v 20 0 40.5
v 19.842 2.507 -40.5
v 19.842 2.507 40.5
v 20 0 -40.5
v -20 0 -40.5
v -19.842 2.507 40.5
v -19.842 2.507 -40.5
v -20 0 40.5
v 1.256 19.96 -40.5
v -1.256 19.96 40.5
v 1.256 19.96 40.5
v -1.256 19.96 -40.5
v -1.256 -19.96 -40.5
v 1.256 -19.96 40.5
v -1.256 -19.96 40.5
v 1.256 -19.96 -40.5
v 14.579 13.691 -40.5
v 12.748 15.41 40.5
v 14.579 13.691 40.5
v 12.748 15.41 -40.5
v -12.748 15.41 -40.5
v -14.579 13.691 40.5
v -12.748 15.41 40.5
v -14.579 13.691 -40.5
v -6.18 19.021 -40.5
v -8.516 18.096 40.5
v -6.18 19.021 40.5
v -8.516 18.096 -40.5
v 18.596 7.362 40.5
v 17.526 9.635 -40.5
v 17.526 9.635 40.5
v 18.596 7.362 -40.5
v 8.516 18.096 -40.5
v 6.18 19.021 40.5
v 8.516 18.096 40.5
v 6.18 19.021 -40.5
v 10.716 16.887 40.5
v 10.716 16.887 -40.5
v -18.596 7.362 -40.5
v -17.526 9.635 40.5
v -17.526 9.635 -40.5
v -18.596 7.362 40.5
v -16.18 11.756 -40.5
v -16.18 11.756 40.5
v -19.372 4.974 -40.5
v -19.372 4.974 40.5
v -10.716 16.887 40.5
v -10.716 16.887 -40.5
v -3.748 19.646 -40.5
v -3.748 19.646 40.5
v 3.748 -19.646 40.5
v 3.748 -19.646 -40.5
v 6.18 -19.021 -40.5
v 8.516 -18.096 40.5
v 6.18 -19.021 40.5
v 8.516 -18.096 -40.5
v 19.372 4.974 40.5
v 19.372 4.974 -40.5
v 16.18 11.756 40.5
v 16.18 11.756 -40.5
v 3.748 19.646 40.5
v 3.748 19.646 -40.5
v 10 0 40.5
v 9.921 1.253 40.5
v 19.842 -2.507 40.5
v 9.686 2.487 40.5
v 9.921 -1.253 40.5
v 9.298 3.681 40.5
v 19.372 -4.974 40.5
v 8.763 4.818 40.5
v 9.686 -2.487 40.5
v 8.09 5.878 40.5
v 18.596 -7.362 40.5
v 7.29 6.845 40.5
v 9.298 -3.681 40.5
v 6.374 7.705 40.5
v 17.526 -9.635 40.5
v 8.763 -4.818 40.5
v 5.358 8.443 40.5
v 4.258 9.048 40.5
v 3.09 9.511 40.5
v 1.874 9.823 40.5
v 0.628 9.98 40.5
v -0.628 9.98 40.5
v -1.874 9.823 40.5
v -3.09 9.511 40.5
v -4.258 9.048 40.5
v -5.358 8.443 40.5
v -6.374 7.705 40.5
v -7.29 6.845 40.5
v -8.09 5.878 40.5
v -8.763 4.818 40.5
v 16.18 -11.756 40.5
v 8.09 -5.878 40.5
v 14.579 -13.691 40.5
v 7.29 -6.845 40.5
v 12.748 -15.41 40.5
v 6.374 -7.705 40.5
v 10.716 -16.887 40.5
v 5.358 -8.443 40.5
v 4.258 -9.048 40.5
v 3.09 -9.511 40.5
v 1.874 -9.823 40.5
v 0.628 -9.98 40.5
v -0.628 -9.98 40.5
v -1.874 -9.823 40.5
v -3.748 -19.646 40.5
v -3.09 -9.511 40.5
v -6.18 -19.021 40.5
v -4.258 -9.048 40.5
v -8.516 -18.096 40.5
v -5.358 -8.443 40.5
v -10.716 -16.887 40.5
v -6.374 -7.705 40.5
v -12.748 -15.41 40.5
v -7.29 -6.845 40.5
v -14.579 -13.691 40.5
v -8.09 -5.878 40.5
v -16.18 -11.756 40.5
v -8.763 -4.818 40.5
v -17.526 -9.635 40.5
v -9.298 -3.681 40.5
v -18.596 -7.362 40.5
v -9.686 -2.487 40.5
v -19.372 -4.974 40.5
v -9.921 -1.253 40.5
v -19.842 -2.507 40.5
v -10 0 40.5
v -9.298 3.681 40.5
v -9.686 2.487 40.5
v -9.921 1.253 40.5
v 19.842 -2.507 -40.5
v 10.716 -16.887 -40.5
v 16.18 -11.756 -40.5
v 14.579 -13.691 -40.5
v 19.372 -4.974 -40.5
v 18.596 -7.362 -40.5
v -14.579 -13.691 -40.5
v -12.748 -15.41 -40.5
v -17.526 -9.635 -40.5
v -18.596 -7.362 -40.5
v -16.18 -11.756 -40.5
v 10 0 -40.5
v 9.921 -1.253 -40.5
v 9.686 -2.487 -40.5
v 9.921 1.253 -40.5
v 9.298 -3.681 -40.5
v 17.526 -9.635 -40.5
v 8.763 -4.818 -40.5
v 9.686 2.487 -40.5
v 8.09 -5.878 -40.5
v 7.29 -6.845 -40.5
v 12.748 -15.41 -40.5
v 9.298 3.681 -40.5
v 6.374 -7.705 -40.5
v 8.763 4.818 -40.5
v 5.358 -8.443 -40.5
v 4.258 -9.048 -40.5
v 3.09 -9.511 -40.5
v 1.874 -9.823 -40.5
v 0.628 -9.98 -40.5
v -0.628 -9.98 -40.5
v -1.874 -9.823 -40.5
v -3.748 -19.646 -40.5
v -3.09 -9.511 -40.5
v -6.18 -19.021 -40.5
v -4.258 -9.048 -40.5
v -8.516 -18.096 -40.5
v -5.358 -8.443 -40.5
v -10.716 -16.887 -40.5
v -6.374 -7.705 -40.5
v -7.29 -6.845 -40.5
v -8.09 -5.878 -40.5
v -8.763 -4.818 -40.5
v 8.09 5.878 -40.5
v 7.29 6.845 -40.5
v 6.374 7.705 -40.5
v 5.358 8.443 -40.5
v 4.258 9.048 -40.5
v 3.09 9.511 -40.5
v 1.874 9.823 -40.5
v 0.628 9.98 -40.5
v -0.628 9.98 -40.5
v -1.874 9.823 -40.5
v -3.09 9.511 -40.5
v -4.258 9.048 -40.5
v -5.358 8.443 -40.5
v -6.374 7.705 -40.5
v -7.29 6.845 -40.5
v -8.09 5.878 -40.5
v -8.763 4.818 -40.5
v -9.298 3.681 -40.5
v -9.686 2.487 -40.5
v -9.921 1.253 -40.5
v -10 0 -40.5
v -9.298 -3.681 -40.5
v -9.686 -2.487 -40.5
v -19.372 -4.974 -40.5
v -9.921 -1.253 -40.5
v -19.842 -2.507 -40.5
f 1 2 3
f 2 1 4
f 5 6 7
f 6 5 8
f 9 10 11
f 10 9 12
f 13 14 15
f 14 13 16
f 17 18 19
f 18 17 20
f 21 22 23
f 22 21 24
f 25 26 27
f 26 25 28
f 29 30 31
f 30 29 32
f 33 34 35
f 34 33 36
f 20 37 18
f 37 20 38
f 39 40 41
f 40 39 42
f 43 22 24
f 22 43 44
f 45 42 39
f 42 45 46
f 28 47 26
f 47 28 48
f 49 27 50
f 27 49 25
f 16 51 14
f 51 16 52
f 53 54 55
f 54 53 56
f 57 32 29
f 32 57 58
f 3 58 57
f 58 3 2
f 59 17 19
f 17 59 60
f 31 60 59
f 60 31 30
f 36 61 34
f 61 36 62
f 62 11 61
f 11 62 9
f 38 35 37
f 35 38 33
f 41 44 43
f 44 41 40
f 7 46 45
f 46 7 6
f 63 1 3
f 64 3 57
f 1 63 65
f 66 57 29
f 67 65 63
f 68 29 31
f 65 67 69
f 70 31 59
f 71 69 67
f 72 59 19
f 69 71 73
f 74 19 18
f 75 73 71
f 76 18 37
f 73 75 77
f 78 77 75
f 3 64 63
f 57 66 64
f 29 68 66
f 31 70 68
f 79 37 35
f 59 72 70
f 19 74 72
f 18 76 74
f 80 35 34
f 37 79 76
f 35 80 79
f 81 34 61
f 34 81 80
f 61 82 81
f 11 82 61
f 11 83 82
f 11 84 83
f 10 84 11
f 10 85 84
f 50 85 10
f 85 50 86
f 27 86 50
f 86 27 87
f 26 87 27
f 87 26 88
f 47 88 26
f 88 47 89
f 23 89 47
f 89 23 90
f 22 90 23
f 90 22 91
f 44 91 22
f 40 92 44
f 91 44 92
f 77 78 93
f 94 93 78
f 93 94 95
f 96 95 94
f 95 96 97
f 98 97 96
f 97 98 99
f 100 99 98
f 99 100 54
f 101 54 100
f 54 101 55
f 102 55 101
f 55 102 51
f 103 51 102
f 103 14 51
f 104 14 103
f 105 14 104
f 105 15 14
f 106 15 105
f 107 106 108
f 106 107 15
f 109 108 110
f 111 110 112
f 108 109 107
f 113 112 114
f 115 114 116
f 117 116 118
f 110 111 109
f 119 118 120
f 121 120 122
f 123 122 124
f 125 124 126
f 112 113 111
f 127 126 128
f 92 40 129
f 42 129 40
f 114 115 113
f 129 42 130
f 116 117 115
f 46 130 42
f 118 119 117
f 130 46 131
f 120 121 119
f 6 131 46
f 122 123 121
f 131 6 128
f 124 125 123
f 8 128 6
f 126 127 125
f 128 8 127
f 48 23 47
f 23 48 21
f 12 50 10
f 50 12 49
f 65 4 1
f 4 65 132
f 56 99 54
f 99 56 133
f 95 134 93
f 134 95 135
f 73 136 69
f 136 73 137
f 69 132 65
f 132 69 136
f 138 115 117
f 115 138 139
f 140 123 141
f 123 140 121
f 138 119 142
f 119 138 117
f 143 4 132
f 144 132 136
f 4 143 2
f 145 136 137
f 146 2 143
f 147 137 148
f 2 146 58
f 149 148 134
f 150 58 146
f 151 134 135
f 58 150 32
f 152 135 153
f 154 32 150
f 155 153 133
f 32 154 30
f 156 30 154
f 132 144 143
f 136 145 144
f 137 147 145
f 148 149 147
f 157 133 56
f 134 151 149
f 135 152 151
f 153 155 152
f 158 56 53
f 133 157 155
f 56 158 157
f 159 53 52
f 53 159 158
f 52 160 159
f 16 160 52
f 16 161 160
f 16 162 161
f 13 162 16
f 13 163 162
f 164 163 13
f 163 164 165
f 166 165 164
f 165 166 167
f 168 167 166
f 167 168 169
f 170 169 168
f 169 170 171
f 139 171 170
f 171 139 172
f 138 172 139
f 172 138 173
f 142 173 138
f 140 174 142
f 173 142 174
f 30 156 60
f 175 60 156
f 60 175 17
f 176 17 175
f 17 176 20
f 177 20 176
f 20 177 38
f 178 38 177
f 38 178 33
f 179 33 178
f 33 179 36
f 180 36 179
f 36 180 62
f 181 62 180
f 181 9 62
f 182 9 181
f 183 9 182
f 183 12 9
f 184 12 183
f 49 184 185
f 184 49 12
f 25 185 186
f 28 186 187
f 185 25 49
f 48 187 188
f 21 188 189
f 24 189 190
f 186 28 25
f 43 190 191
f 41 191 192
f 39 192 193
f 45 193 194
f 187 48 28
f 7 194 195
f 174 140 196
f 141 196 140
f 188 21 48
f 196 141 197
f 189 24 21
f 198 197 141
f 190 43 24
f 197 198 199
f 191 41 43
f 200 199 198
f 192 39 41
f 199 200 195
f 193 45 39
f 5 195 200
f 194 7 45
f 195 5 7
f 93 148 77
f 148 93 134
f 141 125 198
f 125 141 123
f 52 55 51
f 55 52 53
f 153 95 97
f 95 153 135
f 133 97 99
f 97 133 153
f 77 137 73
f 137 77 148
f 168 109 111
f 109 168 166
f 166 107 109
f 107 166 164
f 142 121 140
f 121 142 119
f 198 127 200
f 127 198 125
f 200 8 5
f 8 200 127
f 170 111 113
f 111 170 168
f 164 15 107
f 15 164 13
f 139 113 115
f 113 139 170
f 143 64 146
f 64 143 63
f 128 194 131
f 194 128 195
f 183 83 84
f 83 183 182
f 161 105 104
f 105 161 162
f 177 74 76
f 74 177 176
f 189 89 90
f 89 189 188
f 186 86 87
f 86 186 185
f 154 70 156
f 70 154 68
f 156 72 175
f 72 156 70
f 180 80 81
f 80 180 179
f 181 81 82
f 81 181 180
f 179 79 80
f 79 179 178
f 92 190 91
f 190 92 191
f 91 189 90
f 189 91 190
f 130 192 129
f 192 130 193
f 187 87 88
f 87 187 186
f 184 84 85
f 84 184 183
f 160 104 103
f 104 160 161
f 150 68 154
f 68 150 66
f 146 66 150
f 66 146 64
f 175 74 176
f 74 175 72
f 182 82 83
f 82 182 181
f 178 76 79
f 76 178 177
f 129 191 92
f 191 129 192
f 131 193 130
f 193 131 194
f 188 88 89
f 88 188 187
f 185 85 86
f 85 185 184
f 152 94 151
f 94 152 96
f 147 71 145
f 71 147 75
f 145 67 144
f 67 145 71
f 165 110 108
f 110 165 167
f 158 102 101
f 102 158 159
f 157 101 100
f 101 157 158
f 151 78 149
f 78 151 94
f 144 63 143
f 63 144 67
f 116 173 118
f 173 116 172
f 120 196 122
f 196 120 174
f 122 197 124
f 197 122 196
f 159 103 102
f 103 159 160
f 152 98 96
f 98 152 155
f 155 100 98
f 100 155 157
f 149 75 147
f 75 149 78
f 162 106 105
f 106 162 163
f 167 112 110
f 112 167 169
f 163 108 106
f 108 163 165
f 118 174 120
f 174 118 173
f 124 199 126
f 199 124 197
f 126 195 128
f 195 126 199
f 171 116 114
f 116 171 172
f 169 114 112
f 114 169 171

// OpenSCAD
$fn = 50;


difference() {
	union() {
		translate(v = [0, 0, -40.5000000000]) {
			cylinder(h = 81, r = 20.0000000000);
		}
	}
	union() {
		translate(v = [0, 0, -100.0000000000]) {
			cylinder(h = 200, r = 10);
		}
	}
}
